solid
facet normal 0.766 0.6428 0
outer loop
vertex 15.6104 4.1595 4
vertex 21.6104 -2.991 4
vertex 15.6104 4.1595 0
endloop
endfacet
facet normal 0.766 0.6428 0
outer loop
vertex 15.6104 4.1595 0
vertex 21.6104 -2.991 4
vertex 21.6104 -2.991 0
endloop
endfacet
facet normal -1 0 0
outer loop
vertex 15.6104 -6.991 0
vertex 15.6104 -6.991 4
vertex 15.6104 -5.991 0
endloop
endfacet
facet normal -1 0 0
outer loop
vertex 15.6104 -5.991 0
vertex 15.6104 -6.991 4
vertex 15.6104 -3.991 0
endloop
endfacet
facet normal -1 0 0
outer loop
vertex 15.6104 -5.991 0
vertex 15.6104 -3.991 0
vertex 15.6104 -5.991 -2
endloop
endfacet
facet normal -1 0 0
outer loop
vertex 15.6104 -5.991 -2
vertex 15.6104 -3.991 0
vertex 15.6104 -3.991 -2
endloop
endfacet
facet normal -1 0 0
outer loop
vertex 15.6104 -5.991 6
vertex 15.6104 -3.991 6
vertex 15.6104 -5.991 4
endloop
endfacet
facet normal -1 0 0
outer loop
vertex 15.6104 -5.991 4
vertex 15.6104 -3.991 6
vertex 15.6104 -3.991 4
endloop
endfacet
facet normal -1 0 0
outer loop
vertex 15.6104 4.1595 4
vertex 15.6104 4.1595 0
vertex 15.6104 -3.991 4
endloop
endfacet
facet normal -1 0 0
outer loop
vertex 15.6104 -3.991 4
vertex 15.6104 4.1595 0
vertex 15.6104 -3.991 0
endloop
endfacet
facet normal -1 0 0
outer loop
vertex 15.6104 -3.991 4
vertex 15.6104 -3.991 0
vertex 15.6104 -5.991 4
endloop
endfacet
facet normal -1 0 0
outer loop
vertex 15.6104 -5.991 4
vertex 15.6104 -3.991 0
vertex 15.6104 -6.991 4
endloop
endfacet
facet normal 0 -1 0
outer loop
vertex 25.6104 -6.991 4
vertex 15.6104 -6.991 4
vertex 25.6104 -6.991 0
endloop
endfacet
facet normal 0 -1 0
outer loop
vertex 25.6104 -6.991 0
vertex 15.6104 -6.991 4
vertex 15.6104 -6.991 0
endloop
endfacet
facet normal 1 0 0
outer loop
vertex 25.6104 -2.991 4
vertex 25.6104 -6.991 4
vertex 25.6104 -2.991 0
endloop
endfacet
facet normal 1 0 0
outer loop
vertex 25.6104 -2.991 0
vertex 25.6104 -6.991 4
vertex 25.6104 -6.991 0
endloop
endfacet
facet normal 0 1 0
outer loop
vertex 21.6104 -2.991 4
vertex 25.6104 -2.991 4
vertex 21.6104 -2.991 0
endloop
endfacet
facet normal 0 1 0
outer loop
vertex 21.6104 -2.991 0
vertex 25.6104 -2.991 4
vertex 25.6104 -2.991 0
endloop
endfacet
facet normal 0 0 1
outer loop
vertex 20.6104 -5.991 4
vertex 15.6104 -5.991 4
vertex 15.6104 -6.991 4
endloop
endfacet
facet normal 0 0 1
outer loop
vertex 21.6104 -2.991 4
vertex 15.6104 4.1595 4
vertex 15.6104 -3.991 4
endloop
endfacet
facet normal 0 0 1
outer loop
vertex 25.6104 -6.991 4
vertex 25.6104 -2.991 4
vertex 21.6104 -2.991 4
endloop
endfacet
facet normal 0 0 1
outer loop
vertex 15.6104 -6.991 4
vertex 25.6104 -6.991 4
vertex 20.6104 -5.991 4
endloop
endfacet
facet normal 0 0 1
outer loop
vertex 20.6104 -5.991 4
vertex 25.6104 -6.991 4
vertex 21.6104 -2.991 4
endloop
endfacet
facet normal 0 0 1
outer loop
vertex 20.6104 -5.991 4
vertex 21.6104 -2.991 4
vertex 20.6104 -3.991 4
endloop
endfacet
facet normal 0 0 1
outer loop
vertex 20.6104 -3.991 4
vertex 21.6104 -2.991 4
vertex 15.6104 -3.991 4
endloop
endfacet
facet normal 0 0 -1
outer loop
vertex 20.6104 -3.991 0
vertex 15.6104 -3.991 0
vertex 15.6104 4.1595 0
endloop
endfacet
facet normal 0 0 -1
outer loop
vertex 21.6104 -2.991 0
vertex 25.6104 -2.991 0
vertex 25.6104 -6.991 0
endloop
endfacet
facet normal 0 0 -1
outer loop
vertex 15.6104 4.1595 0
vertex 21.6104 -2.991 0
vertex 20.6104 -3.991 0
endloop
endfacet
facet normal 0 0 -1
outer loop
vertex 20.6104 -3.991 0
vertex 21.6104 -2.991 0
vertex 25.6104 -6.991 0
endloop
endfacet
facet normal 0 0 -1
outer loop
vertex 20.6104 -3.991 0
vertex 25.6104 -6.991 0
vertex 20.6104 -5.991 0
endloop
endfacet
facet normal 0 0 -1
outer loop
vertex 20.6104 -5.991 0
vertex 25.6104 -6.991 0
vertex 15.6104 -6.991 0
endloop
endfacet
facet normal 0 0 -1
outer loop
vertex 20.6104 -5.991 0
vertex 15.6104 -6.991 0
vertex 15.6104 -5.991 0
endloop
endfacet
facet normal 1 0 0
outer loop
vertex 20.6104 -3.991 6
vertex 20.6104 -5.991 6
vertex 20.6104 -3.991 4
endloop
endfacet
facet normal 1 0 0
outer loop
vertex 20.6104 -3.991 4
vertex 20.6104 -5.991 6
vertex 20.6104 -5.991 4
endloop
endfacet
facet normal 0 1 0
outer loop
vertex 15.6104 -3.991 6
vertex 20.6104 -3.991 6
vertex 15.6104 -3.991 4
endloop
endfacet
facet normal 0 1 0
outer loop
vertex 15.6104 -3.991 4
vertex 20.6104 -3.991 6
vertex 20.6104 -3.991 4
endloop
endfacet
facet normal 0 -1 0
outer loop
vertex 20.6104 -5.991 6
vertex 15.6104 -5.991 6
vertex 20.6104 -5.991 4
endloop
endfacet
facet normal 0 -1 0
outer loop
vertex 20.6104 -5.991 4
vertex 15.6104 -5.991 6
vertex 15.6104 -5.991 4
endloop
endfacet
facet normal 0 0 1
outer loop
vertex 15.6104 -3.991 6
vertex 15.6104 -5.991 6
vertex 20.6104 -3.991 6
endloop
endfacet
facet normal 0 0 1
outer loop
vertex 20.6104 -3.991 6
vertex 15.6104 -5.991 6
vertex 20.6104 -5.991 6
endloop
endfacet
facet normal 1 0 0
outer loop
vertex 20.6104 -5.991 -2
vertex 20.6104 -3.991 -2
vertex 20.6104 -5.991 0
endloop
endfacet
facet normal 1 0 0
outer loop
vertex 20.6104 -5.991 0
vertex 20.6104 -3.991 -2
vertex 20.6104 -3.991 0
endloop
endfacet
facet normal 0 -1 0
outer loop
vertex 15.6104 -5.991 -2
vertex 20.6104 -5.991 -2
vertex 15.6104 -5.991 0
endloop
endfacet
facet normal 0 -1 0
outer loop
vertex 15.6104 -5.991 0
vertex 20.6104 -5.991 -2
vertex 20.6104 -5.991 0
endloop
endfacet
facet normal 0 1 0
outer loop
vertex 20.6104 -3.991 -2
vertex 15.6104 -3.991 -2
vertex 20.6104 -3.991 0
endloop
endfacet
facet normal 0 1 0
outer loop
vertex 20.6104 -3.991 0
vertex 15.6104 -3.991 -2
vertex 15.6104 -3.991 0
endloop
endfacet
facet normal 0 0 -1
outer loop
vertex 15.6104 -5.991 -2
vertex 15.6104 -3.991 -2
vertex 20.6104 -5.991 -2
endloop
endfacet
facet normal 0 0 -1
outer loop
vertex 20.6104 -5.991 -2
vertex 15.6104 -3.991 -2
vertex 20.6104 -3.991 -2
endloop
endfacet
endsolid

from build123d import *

# Parameters (mm, degrees)
BOSS_EXTRU_1_DEPTH = 4
ESQUISSE2_W        = 5
ESQUISSE2_H        = 2
BOSS_EXTRU_2_DEPTH = 2


with BuildPart() as part:
    # Esquisse1 → Boss.-Extru.1 (new body)
    with BuildSketch(Plane.XY):
        Polygon((21.610352861, -2.991005838), (25.610352861, -2.991005838), (25.610352861, -6.991005838), (15.610352861, -6.991005838), (15.610352861, 4.159515718), align=None)
    extrude(amount=BOSS_EXTRU_1_DEPTH)

    # Esquisse2 → Boss.-Extru.2 (add)
    with BuildSketch(Plane.XY.offset(4)):
        with Locations((18.110352861, -4.991005838)):
            Rectangle(ESQUISSE2_W, ESQUISSE2_H)
    boss_extru_2 = extrude(amount=BOSS_EXTRU_2_DEPTH)

    # Symétrie1: Boss.-Extru.2 across plane
    add(boss_extru_2.mirror(Plane.XY.offset(2)))


solid = part.part
